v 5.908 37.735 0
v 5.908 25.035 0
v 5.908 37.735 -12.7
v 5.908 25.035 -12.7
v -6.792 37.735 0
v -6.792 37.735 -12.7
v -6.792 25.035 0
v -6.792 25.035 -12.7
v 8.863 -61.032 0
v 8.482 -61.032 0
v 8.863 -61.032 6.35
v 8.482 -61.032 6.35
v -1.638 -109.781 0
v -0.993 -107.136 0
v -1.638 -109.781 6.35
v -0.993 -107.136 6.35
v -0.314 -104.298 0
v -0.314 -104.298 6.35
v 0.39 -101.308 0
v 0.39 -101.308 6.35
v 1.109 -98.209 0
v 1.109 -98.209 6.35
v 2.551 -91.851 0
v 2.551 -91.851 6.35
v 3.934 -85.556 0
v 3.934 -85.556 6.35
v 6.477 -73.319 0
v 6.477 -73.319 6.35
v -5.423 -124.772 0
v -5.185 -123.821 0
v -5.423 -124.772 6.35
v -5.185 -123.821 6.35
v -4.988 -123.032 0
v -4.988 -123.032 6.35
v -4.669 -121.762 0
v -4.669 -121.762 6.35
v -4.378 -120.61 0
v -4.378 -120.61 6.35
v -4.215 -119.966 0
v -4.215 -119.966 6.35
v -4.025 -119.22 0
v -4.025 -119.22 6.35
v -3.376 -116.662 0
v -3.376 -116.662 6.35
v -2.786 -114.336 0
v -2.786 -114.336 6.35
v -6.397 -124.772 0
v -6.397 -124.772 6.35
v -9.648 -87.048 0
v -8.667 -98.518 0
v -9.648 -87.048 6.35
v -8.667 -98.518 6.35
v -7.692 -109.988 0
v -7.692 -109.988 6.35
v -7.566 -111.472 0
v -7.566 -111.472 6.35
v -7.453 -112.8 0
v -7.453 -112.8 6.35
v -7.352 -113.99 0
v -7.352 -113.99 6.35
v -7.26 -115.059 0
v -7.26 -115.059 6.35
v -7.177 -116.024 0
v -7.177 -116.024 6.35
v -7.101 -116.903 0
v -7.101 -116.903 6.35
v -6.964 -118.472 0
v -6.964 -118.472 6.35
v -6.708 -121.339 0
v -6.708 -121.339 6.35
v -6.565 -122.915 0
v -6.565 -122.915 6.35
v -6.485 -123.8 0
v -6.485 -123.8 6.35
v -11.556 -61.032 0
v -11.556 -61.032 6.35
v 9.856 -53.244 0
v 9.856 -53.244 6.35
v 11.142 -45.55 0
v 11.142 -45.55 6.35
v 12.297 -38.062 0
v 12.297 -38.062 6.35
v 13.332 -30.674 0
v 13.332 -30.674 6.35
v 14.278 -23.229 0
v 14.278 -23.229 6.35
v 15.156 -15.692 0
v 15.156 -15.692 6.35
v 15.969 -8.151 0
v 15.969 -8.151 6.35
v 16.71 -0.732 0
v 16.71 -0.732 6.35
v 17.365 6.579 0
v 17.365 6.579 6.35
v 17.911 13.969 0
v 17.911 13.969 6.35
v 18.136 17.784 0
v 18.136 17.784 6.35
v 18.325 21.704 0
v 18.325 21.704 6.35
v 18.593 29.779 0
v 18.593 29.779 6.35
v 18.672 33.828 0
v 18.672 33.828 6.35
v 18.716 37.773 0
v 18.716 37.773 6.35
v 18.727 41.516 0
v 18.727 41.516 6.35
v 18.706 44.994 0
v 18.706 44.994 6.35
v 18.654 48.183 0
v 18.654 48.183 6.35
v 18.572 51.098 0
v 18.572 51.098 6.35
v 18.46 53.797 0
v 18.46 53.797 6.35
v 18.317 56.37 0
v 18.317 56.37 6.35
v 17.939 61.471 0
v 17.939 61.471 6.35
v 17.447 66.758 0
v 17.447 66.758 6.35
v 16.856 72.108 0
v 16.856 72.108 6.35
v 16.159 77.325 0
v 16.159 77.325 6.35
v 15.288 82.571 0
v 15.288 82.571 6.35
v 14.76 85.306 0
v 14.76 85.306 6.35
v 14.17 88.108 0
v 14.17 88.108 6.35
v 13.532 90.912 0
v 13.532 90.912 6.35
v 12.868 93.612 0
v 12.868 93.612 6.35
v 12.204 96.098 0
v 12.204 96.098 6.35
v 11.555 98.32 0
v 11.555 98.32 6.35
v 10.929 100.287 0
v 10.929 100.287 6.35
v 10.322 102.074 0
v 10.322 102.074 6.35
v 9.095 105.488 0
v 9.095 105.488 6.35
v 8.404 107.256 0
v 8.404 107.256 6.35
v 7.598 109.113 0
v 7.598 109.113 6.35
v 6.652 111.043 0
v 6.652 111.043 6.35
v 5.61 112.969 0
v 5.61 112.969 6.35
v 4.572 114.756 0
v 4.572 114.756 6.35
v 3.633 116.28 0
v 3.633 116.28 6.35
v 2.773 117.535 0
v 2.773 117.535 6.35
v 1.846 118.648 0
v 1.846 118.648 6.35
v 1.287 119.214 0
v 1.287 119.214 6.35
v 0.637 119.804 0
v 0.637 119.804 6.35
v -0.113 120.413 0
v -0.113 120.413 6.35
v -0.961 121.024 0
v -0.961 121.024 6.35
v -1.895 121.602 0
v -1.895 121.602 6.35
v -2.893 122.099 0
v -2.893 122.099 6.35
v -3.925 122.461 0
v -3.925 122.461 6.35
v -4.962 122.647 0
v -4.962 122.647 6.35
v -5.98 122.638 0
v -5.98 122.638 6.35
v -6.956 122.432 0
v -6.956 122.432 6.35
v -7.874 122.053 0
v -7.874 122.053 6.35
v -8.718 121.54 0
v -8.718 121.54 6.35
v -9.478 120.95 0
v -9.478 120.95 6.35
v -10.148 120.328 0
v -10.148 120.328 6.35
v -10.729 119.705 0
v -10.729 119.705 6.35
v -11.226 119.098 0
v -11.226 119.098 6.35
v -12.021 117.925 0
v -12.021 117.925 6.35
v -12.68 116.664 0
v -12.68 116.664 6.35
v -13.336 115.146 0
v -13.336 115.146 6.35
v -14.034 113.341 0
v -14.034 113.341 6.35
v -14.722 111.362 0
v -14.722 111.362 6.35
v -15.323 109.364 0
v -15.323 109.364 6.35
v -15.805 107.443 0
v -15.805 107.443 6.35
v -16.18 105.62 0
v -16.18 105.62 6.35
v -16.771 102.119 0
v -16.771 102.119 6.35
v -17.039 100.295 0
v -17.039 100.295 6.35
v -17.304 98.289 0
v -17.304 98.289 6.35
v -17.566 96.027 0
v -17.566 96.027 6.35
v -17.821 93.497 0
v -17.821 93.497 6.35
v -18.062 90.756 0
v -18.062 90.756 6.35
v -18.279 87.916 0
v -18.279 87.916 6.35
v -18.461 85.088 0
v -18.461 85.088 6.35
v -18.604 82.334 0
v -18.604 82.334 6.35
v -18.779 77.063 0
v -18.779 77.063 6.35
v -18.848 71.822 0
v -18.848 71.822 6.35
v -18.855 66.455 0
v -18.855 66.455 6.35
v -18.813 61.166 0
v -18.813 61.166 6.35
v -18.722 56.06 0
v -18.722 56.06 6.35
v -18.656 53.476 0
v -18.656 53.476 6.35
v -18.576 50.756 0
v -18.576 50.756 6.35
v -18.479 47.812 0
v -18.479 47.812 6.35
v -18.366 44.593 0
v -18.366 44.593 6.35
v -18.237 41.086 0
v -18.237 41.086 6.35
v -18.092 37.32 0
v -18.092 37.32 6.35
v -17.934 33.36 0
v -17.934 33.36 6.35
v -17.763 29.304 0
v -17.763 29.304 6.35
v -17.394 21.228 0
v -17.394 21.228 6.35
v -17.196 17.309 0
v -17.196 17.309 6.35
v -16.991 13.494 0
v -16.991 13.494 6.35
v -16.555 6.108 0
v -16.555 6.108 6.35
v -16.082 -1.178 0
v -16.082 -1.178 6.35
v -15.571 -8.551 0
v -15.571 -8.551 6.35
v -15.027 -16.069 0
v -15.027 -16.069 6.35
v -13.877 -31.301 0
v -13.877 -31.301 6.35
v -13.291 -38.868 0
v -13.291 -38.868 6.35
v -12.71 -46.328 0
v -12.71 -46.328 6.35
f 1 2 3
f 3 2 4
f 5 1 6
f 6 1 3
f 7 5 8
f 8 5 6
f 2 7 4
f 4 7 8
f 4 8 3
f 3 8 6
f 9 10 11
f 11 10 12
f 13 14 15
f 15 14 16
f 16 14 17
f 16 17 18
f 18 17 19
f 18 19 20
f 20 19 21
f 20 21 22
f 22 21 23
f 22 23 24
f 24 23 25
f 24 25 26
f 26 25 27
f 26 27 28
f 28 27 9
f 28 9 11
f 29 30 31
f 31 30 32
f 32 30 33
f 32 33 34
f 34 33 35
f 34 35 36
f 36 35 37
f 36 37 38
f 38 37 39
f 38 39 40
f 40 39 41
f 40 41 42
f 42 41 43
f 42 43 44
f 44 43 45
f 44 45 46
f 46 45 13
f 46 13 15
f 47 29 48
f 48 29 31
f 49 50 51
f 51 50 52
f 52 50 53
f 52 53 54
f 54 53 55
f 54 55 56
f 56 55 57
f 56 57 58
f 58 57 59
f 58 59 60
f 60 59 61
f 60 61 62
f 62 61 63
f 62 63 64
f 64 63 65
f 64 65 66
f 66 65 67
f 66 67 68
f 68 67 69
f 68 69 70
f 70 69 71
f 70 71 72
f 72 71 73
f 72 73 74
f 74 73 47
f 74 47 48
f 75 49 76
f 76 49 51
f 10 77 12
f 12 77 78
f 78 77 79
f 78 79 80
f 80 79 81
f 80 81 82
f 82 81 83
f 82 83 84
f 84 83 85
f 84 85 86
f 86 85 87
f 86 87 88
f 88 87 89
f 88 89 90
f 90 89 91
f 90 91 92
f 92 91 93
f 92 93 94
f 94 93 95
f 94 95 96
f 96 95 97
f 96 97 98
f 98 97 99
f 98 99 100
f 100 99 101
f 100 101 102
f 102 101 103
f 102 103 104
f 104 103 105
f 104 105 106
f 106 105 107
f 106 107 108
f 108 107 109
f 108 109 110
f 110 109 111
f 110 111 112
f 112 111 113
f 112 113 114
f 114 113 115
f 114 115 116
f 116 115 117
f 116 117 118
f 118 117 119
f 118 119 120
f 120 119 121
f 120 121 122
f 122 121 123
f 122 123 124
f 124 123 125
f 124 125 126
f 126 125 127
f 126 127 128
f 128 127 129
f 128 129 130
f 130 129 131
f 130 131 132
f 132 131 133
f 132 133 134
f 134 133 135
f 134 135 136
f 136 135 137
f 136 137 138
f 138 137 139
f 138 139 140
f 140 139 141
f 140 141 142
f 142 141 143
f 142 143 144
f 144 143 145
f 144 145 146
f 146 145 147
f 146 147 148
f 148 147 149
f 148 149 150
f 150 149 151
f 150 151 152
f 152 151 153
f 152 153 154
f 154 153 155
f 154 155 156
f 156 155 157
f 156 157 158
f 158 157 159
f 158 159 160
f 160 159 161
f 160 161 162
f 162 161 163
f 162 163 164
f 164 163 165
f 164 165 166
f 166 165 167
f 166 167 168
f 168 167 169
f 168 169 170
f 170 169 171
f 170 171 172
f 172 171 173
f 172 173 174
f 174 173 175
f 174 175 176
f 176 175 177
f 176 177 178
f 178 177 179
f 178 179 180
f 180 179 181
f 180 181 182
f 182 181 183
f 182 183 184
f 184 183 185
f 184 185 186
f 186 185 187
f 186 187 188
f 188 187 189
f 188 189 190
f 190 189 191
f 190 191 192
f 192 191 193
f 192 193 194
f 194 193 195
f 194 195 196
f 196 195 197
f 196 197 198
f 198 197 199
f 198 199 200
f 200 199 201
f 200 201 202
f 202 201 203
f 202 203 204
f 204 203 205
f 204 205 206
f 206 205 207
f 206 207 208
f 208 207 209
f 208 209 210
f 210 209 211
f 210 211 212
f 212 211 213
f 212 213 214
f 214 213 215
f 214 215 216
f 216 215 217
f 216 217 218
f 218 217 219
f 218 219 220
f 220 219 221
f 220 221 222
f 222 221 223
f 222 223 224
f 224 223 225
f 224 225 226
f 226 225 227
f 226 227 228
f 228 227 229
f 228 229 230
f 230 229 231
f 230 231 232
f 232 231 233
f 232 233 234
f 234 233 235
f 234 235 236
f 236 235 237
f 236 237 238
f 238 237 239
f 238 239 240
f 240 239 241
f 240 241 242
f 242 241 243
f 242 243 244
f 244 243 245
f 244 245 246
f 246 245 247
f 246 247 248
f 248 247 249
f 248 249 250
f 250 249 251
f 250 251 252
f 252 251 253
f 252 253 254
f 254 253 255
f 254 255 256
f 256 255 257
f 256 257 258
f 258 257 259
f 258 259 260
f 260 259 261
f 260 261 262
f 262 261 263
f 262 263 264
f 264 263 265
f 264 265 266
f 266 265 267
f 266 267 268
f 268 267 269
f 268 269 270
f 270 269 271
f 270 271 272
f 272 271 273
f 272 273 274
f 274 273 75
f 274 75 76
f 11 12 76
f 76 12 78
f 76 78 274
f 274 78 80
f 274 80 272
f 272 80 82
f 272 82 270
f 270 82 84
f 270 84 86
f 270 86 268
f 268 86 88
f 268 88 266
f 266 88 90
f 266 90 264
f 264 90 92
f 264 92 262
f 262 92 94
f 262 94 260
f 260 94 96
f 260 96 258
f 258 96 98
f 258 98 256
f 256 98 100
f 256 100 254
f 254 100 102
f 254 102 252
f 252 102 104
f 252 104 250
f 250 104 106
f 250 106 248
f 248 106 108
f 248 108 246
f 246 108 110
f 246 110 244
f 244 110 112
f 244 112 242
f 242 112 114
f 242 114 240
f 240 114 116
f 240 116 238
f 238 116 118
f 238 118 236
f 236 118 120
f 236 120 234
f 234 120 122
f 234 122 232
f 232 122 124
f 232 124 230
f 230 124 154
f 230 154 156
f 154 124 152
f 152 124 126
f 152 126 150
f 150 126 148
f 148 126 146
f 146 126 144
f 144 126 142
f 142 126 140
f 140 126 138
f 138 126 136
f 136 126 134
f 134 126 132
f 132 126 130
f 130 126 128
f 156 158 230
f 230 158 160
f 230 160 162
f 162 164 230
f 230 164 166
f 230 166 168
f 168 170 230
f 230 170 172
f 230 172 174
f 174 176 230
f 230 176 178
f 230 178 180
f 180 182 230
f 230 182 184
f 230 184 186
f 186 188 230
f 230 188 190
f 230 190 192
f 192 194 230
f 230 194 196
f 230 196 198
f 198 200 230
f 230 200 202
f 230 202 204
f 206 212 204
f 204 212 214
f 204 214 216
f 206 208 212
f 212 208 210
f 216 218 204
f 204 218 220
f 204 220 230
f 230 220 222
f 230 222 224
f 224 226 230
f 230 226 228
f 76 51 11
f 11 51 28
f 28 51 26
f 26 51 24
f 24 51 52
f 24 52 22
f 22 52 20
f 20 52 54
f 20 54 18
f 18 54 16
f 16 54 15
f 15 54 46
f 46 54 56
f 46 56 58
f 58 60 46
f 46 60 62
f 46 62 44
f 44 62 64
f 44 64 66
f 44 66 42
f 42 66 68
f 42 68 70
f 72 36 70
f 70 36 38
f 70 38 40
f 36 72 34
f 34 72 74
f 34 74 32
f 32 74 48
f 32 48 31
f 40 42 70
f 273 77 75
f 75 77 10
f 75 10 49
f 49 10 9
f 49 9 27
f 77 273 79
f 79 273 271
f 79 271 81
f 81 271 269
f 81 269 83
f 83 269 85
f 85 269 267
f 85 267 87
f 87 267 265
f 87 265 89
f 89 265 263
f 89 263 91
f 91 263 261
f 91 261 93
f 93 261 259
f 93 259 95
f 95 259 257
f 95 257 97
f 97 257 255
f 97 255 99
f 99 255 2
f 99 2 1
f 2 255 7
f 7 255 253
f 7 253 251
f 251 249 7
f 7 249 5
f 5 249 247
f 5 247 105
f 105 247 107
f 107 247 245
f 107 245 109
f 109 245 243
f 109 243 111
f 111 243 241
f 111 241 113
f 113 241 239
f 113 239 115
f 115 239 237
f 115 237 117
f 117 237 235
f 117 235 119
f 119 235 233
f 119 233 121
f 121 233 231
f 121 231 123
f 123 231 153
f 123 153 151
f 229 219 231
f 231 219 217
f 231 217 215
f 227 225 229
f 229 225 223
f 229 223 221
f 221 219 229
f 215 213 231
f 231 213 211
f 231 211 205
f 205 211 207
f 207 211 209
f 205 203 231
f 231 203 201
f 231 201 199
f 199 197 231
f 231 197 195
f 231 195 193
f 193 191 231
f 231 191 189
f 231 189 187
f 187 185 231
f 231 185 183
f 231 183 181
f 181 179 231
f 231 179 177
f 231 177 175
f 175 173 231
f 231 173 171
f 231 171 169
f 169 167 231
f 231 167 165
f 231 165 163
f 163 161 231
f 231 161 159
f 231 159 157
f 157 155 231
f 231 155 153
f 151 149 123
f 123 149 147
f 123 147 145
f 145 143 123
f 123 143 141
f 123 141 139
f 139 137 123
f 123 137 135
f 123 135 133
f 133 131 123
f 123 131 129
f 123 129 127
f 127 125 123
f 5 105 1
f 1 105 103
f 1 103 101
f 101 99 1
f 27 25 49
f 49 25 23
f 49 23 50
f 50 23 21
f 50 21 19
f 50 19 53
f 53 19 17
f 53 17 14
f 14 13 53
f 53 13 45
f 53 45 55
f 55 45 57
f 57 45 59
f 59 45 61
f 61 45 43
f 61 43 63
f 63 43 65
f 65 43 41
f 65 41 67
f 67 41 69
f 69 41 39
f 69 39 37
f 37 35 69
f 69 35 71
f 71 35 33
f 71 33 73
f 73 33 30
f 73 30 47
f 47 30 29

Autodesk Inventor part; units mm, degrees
ref_plane "YZ Plane" through (0, 0, 0) normal (1, 0, 0) x (0, 1, 0)
ref_plane "XZ Plane" through (0, 0, 0) normal (0, 1, 0) x (-1, 0, 0)
ref_plane "XY Plane" through (0, 0, 0) normal (0, 0, 1) x (1, 0, 0)
ref_plane "Work Plane1" through (463.7305, -1035.5064, 0) normal (0, 0, 1) x (0.1166636, -0.9931715, 0)
sketch "Sketch1" plane through (463.7305, -1035.5064, 0) normal (0, 0, 1) x (0.1166636, -0.9931715, 0)
  line L0 (-1119.3235, -329.4885) -> (-1106.7103, -330.9701) projected
  line L1 (-1106.7103, -330.9701) -> (-1108.1919, -343.5834) projected
  line L2 (-1108.1919, -343.5834) -> (-1120.8052, -342.1018) projected
  line L3 (-1120.8052, -342.1018) -> (-1119.3235, -329.4885) projected
  line L4 (-1023.2686, -358.3554) -> (-1020.9309, -338.4541) projected
  spline S0 degree 4 poles (-1020.9309, -338.4541) (-1026.5338, -336.7537) (-1038.7232, -333.1109) (-1055.1163, -328.7515) (-1079.6641, -323.1903) (-1100.3284, -318.8993) (-1127.386, -315.4589) (-1138.7674, -314.7533) (-1153.2051, -314.4719) (-1164.1562, -314.8378) (-1177.8633, -316.3868) (-1184.0767, -317.949) (-1190.5481, -319.3093) (-1198.4132, -322.9201) (-1200.6065, -324.0146) (-1207.3481, -330.9087) (-1202.2856, -337.2463) (-1200.1655, -338.713) (-1193.1468, -342.4526) (-1187.1056, -344.1727) (-1181.2102, -345.8547) (-1168.0048, -348.531) (-1157.3156, -350.0048) (-1143.0595, -351.6304) (-1131.7178, -352.5935) (-1104.6159, -354.7467) (-1083.3693, -355.9217) (-1058.8468, -356.9821) (-1040.4385, -357.6891) (-1028.9285, -358.141) (-1023.2686, -358.3554) knots 0.096456 0.096456 0.096456 0.096456 0.096456 0.132907 0.173364 0.213741 0.251119 0.285536 0.317038 0.345695 0.372397 0.397199 0.420236 0.440116 0.460308 0.480206 0.498565 0.518053 0.537157 0.556377 0.578869 0.603285 0.629723 0.658222 0.689661 0.724055 0.761412 0.801733 0.842066 0.879452 0.879452 0.879452 0.879452 0.879452 projected
  line L5 (-1020.9309, -338.4541) -> (-1074.8444, -347.7607)
  line L6 (-11.0175, -70.7186) -> (-1195.771, -340.9542)
  line L7 (-959.249, -359.7001) -> (-959.3626, -360.6675) projected
  spline S1 degree 3 poles (-973.6958, -354.1921) (-970.6173, -355.3577) (-968.098, -356.3267) (-962.5104, -358.4635) (-961.9393, -358.6819) (-959.249, -359.7001) knots 0 0 0 0 0.987527 0.987527 1.577405 1.577405 1.577405 1.577405 projected
  spline S2 degree 3 poles (-1020.8864, -338.0757) (-1012.9265, -340.5653) (-1004.9752, -343.1425) (-989.1659, -348.5464) (-980.2142, -351.7501) (-973.6958, -354.1921) knots 0 0 0 0 2.502042 2.502042 5.026236 5.026236 5.026236 5.026236 projected
  ellipse E0 centre (-1001.3774, -340.3673) end of major axis (-1020.8864, -338.0757) minor radius 19.5694 (-1020.8864, -338.0757) -> (-997.2075, -359.4952) ccw projected
  spline S3 degree 3 poles (-959.3626, -360.6675) (-964.8306, -360.5222) (-965.81, -360.5012) (-981.8664, -359.9802) (-989.5369, -359.7357) (-997.2075, -359.4952) knots 0 0 0 0 1.64098 1.64098 3.141934 3.141934 3.141934 3.141934 projected
  line L8 (-1119.3235, -329.4885) -> (-1106.7103, -330.9701) projected
  line L9 (-1106.7103, -330.9701) -> (-1108.1919, -343.5834) projected
  line L10 (-1108.1919, -343.5834) -> (-1120.8052, -342.1018) projected
  line L11 (-1120.8052, -342.1018) -> (-1119.3235, -329.4885) projected
  line L12 (-1023.2686, -358.3554) -> (-1020.9309, -338.4541) projected
  spline S4 degree 4 poles (-1020.9309, -338.4541) (-1026.5338, -336.7537) (-1038.7232, -333.1109) (-1055.1163, -328.7515) (-1079.6641, -323.1903) (-1100.3284, -318.8993) (-1127.386, -315.4589) (-1138.7674, -314.7533) (-1153.2051, -314.4719) (-1164.1562, -314.8378) (-1177.8633, -316.3868) (-1184.0767, -317.949) (-1190.5481, -319.3093) (-1198.4132, -322.9201) (-1200.6065, -324.0146) (-1207.3481, -330.9087) (-1202.2856, -337.2463) (-1200.1655, -338.713) (-1193.1468, -342.4526) (-1187.1056, -344.1727) (-1181.2102, -345.8547) (-1168.0048, -348.531) (-1157.3156, -350.0048) (-1143.0595, -351.6304) (-1131.7178, -352.5935) (-1104.6159, -354.7467) (-1083.3693, -355.9217) (-1058.8468, -356.9821) (-1040.4385, -357.6891) (-1028.9285, -358.141) (-1023.2686, -358.3554) knots 0.096456 0.096456 0.096456 0.096456 0.096456 0.132907 0.173364 0.213741 0.251119 0.285536 0.317038 0.345695 0.372397 0.397199 0.420236 0.440116 0.460308 0.480206 0.498565 0.518053 0.537157 0.556377 0.578869 0.603285 0.629723 0.658222 0.689661 0.724055 0.761412 0.801733 0.842066 0.879452 0.879452 0.879452 0.879452 0.879452 projected
  line L13 (-959.249, -359.7001) -> (-959.3626, -360.6675) projected
  spline S5 degree 3 poles (-973.6958, -354.1921) (-970.6173, -355.3577) (-968.098, -356.3267) (-962.5104, -358.4635) (-961.9393, -358.6819) (-959.249, -359.7001) knots 0 0 0 0 0.987527 0.987527 1.577405 1.577405 1.577405 1.577405 projected
  spline S6 degree 3 poles (-1020.8864, -338.0757) (-1012.9265, -340.5653) (-1004.9752, -343.1425) (-989.1659, -348.5464) (-980.2142, -351.7501) (-973.6958, -354.1921) knots 0 0 0 0 2.502042 2.502042 5.026236 5.026236 5.026236 5.026236 projected
  ellipse E1 centre (-1001.3774, -340.3673) end of major axis (-1020.8864, -338.0757) minor radius 19.5694 (-1020.8864, -338.0757) -> (-997.2075, -359.4952) ccw projected
  spline S7 degree 3 poles (-959.3626, -360.6675) (-964.8306, -360.5222) (-965.81, -360.5012) (-981.8664, -359.9802) (-989.5369, -359.7357) (-997.2075, -359.4952) knots 0 0 0 0 1.64098 1.64098 3.141934 3.141934 3.141934 3.141934 projected
  line L14 (-1020.9309, -338.4541) -> (-1020.8864, -338.0757)
  line L15 (-997.2075, -359.4952) -> (-1023.2686, -358.3554)
  point P0 (-1082.5359, -339.758)
extrude "Extrusion1" add sketch "Sketch1" along normal blind 6.35 contours S0 L6 L4 | L4 L14 E0 L15 | S0 L6 | E0 S2 S1 L7 S3 L15
sketch "Sketch2" plane through (463.7305, -1035.5064, 0) normal (0, 0, -1) x (-0.1166636, 0.9931715, 0)
  line L0 (1106.7103, -330.9701) -> (1108.1919, -343.5834) projected
  line L1 (1119.3235, -329.4885) -> (1106.7103, -330.9701) projected
  line L2 (1120.8052, -342.1018) -> (1119.3235, -329.4885) projected
  line L3 (1108.1919, -343.5834) -> (1120.8052, -342.1018) projected
  ellipse E0 centre (4.857, -80.0159) end of major axis (4.8635, -79.0121) minor radius 1 projected
  line L4 (1119.3235, -329.4885) -> (1106.7103, -330.9701) projected
  line L5 (1106.7103, -330.9701) -> (1108.1919, -343.5834) projected
  line L6 (1108.1919, -343.5834) -> (1120.8052, -342.1018) projected
  line L7 (1120.8052, -342.1018) -> (1119.3235, -329.4885) projected
  line L8 (959.3626, -360.6675) -> (959.249, -359.7001) projected
  line L9 (1020.8864, -338.0757) -> (1020.9309, -338.4541) projected
  line L10 (1023.2686, -358.3554) -> (997.2075, -359.4952) projected
  point P0 (1082.5359, -339.758)
extrude "Extrusion2" add sketch "Sketch2" along normal blind 12.7 contours L1 L2 L3 L0
sketch "Sketch3" plane through (463.7305, -1035.5064, 0) normal (0, 0, 1) x (0.1166636, -0.9931715, 0)
  line L0 (-1106.7103, -330.9701) -> (-1108.1919, -343.5834) projected
  line L1 (-1119.3235, -329.4885) -> (-1106.7103, -330.9701) projected
  line L2 (-1120.8052, -342.1018) -> (-1119.3235, -329.4885) projected
  line L3 (-1108.1919, -343.5834) -> (-1120.8052, -342.1018) projected
  point P0 (-1082.5359, -339.758)
extrude "Extrusion3" add sketch "Sketch3" along normal up to surface (6.35 mm away)
properties part number "WingCap"
